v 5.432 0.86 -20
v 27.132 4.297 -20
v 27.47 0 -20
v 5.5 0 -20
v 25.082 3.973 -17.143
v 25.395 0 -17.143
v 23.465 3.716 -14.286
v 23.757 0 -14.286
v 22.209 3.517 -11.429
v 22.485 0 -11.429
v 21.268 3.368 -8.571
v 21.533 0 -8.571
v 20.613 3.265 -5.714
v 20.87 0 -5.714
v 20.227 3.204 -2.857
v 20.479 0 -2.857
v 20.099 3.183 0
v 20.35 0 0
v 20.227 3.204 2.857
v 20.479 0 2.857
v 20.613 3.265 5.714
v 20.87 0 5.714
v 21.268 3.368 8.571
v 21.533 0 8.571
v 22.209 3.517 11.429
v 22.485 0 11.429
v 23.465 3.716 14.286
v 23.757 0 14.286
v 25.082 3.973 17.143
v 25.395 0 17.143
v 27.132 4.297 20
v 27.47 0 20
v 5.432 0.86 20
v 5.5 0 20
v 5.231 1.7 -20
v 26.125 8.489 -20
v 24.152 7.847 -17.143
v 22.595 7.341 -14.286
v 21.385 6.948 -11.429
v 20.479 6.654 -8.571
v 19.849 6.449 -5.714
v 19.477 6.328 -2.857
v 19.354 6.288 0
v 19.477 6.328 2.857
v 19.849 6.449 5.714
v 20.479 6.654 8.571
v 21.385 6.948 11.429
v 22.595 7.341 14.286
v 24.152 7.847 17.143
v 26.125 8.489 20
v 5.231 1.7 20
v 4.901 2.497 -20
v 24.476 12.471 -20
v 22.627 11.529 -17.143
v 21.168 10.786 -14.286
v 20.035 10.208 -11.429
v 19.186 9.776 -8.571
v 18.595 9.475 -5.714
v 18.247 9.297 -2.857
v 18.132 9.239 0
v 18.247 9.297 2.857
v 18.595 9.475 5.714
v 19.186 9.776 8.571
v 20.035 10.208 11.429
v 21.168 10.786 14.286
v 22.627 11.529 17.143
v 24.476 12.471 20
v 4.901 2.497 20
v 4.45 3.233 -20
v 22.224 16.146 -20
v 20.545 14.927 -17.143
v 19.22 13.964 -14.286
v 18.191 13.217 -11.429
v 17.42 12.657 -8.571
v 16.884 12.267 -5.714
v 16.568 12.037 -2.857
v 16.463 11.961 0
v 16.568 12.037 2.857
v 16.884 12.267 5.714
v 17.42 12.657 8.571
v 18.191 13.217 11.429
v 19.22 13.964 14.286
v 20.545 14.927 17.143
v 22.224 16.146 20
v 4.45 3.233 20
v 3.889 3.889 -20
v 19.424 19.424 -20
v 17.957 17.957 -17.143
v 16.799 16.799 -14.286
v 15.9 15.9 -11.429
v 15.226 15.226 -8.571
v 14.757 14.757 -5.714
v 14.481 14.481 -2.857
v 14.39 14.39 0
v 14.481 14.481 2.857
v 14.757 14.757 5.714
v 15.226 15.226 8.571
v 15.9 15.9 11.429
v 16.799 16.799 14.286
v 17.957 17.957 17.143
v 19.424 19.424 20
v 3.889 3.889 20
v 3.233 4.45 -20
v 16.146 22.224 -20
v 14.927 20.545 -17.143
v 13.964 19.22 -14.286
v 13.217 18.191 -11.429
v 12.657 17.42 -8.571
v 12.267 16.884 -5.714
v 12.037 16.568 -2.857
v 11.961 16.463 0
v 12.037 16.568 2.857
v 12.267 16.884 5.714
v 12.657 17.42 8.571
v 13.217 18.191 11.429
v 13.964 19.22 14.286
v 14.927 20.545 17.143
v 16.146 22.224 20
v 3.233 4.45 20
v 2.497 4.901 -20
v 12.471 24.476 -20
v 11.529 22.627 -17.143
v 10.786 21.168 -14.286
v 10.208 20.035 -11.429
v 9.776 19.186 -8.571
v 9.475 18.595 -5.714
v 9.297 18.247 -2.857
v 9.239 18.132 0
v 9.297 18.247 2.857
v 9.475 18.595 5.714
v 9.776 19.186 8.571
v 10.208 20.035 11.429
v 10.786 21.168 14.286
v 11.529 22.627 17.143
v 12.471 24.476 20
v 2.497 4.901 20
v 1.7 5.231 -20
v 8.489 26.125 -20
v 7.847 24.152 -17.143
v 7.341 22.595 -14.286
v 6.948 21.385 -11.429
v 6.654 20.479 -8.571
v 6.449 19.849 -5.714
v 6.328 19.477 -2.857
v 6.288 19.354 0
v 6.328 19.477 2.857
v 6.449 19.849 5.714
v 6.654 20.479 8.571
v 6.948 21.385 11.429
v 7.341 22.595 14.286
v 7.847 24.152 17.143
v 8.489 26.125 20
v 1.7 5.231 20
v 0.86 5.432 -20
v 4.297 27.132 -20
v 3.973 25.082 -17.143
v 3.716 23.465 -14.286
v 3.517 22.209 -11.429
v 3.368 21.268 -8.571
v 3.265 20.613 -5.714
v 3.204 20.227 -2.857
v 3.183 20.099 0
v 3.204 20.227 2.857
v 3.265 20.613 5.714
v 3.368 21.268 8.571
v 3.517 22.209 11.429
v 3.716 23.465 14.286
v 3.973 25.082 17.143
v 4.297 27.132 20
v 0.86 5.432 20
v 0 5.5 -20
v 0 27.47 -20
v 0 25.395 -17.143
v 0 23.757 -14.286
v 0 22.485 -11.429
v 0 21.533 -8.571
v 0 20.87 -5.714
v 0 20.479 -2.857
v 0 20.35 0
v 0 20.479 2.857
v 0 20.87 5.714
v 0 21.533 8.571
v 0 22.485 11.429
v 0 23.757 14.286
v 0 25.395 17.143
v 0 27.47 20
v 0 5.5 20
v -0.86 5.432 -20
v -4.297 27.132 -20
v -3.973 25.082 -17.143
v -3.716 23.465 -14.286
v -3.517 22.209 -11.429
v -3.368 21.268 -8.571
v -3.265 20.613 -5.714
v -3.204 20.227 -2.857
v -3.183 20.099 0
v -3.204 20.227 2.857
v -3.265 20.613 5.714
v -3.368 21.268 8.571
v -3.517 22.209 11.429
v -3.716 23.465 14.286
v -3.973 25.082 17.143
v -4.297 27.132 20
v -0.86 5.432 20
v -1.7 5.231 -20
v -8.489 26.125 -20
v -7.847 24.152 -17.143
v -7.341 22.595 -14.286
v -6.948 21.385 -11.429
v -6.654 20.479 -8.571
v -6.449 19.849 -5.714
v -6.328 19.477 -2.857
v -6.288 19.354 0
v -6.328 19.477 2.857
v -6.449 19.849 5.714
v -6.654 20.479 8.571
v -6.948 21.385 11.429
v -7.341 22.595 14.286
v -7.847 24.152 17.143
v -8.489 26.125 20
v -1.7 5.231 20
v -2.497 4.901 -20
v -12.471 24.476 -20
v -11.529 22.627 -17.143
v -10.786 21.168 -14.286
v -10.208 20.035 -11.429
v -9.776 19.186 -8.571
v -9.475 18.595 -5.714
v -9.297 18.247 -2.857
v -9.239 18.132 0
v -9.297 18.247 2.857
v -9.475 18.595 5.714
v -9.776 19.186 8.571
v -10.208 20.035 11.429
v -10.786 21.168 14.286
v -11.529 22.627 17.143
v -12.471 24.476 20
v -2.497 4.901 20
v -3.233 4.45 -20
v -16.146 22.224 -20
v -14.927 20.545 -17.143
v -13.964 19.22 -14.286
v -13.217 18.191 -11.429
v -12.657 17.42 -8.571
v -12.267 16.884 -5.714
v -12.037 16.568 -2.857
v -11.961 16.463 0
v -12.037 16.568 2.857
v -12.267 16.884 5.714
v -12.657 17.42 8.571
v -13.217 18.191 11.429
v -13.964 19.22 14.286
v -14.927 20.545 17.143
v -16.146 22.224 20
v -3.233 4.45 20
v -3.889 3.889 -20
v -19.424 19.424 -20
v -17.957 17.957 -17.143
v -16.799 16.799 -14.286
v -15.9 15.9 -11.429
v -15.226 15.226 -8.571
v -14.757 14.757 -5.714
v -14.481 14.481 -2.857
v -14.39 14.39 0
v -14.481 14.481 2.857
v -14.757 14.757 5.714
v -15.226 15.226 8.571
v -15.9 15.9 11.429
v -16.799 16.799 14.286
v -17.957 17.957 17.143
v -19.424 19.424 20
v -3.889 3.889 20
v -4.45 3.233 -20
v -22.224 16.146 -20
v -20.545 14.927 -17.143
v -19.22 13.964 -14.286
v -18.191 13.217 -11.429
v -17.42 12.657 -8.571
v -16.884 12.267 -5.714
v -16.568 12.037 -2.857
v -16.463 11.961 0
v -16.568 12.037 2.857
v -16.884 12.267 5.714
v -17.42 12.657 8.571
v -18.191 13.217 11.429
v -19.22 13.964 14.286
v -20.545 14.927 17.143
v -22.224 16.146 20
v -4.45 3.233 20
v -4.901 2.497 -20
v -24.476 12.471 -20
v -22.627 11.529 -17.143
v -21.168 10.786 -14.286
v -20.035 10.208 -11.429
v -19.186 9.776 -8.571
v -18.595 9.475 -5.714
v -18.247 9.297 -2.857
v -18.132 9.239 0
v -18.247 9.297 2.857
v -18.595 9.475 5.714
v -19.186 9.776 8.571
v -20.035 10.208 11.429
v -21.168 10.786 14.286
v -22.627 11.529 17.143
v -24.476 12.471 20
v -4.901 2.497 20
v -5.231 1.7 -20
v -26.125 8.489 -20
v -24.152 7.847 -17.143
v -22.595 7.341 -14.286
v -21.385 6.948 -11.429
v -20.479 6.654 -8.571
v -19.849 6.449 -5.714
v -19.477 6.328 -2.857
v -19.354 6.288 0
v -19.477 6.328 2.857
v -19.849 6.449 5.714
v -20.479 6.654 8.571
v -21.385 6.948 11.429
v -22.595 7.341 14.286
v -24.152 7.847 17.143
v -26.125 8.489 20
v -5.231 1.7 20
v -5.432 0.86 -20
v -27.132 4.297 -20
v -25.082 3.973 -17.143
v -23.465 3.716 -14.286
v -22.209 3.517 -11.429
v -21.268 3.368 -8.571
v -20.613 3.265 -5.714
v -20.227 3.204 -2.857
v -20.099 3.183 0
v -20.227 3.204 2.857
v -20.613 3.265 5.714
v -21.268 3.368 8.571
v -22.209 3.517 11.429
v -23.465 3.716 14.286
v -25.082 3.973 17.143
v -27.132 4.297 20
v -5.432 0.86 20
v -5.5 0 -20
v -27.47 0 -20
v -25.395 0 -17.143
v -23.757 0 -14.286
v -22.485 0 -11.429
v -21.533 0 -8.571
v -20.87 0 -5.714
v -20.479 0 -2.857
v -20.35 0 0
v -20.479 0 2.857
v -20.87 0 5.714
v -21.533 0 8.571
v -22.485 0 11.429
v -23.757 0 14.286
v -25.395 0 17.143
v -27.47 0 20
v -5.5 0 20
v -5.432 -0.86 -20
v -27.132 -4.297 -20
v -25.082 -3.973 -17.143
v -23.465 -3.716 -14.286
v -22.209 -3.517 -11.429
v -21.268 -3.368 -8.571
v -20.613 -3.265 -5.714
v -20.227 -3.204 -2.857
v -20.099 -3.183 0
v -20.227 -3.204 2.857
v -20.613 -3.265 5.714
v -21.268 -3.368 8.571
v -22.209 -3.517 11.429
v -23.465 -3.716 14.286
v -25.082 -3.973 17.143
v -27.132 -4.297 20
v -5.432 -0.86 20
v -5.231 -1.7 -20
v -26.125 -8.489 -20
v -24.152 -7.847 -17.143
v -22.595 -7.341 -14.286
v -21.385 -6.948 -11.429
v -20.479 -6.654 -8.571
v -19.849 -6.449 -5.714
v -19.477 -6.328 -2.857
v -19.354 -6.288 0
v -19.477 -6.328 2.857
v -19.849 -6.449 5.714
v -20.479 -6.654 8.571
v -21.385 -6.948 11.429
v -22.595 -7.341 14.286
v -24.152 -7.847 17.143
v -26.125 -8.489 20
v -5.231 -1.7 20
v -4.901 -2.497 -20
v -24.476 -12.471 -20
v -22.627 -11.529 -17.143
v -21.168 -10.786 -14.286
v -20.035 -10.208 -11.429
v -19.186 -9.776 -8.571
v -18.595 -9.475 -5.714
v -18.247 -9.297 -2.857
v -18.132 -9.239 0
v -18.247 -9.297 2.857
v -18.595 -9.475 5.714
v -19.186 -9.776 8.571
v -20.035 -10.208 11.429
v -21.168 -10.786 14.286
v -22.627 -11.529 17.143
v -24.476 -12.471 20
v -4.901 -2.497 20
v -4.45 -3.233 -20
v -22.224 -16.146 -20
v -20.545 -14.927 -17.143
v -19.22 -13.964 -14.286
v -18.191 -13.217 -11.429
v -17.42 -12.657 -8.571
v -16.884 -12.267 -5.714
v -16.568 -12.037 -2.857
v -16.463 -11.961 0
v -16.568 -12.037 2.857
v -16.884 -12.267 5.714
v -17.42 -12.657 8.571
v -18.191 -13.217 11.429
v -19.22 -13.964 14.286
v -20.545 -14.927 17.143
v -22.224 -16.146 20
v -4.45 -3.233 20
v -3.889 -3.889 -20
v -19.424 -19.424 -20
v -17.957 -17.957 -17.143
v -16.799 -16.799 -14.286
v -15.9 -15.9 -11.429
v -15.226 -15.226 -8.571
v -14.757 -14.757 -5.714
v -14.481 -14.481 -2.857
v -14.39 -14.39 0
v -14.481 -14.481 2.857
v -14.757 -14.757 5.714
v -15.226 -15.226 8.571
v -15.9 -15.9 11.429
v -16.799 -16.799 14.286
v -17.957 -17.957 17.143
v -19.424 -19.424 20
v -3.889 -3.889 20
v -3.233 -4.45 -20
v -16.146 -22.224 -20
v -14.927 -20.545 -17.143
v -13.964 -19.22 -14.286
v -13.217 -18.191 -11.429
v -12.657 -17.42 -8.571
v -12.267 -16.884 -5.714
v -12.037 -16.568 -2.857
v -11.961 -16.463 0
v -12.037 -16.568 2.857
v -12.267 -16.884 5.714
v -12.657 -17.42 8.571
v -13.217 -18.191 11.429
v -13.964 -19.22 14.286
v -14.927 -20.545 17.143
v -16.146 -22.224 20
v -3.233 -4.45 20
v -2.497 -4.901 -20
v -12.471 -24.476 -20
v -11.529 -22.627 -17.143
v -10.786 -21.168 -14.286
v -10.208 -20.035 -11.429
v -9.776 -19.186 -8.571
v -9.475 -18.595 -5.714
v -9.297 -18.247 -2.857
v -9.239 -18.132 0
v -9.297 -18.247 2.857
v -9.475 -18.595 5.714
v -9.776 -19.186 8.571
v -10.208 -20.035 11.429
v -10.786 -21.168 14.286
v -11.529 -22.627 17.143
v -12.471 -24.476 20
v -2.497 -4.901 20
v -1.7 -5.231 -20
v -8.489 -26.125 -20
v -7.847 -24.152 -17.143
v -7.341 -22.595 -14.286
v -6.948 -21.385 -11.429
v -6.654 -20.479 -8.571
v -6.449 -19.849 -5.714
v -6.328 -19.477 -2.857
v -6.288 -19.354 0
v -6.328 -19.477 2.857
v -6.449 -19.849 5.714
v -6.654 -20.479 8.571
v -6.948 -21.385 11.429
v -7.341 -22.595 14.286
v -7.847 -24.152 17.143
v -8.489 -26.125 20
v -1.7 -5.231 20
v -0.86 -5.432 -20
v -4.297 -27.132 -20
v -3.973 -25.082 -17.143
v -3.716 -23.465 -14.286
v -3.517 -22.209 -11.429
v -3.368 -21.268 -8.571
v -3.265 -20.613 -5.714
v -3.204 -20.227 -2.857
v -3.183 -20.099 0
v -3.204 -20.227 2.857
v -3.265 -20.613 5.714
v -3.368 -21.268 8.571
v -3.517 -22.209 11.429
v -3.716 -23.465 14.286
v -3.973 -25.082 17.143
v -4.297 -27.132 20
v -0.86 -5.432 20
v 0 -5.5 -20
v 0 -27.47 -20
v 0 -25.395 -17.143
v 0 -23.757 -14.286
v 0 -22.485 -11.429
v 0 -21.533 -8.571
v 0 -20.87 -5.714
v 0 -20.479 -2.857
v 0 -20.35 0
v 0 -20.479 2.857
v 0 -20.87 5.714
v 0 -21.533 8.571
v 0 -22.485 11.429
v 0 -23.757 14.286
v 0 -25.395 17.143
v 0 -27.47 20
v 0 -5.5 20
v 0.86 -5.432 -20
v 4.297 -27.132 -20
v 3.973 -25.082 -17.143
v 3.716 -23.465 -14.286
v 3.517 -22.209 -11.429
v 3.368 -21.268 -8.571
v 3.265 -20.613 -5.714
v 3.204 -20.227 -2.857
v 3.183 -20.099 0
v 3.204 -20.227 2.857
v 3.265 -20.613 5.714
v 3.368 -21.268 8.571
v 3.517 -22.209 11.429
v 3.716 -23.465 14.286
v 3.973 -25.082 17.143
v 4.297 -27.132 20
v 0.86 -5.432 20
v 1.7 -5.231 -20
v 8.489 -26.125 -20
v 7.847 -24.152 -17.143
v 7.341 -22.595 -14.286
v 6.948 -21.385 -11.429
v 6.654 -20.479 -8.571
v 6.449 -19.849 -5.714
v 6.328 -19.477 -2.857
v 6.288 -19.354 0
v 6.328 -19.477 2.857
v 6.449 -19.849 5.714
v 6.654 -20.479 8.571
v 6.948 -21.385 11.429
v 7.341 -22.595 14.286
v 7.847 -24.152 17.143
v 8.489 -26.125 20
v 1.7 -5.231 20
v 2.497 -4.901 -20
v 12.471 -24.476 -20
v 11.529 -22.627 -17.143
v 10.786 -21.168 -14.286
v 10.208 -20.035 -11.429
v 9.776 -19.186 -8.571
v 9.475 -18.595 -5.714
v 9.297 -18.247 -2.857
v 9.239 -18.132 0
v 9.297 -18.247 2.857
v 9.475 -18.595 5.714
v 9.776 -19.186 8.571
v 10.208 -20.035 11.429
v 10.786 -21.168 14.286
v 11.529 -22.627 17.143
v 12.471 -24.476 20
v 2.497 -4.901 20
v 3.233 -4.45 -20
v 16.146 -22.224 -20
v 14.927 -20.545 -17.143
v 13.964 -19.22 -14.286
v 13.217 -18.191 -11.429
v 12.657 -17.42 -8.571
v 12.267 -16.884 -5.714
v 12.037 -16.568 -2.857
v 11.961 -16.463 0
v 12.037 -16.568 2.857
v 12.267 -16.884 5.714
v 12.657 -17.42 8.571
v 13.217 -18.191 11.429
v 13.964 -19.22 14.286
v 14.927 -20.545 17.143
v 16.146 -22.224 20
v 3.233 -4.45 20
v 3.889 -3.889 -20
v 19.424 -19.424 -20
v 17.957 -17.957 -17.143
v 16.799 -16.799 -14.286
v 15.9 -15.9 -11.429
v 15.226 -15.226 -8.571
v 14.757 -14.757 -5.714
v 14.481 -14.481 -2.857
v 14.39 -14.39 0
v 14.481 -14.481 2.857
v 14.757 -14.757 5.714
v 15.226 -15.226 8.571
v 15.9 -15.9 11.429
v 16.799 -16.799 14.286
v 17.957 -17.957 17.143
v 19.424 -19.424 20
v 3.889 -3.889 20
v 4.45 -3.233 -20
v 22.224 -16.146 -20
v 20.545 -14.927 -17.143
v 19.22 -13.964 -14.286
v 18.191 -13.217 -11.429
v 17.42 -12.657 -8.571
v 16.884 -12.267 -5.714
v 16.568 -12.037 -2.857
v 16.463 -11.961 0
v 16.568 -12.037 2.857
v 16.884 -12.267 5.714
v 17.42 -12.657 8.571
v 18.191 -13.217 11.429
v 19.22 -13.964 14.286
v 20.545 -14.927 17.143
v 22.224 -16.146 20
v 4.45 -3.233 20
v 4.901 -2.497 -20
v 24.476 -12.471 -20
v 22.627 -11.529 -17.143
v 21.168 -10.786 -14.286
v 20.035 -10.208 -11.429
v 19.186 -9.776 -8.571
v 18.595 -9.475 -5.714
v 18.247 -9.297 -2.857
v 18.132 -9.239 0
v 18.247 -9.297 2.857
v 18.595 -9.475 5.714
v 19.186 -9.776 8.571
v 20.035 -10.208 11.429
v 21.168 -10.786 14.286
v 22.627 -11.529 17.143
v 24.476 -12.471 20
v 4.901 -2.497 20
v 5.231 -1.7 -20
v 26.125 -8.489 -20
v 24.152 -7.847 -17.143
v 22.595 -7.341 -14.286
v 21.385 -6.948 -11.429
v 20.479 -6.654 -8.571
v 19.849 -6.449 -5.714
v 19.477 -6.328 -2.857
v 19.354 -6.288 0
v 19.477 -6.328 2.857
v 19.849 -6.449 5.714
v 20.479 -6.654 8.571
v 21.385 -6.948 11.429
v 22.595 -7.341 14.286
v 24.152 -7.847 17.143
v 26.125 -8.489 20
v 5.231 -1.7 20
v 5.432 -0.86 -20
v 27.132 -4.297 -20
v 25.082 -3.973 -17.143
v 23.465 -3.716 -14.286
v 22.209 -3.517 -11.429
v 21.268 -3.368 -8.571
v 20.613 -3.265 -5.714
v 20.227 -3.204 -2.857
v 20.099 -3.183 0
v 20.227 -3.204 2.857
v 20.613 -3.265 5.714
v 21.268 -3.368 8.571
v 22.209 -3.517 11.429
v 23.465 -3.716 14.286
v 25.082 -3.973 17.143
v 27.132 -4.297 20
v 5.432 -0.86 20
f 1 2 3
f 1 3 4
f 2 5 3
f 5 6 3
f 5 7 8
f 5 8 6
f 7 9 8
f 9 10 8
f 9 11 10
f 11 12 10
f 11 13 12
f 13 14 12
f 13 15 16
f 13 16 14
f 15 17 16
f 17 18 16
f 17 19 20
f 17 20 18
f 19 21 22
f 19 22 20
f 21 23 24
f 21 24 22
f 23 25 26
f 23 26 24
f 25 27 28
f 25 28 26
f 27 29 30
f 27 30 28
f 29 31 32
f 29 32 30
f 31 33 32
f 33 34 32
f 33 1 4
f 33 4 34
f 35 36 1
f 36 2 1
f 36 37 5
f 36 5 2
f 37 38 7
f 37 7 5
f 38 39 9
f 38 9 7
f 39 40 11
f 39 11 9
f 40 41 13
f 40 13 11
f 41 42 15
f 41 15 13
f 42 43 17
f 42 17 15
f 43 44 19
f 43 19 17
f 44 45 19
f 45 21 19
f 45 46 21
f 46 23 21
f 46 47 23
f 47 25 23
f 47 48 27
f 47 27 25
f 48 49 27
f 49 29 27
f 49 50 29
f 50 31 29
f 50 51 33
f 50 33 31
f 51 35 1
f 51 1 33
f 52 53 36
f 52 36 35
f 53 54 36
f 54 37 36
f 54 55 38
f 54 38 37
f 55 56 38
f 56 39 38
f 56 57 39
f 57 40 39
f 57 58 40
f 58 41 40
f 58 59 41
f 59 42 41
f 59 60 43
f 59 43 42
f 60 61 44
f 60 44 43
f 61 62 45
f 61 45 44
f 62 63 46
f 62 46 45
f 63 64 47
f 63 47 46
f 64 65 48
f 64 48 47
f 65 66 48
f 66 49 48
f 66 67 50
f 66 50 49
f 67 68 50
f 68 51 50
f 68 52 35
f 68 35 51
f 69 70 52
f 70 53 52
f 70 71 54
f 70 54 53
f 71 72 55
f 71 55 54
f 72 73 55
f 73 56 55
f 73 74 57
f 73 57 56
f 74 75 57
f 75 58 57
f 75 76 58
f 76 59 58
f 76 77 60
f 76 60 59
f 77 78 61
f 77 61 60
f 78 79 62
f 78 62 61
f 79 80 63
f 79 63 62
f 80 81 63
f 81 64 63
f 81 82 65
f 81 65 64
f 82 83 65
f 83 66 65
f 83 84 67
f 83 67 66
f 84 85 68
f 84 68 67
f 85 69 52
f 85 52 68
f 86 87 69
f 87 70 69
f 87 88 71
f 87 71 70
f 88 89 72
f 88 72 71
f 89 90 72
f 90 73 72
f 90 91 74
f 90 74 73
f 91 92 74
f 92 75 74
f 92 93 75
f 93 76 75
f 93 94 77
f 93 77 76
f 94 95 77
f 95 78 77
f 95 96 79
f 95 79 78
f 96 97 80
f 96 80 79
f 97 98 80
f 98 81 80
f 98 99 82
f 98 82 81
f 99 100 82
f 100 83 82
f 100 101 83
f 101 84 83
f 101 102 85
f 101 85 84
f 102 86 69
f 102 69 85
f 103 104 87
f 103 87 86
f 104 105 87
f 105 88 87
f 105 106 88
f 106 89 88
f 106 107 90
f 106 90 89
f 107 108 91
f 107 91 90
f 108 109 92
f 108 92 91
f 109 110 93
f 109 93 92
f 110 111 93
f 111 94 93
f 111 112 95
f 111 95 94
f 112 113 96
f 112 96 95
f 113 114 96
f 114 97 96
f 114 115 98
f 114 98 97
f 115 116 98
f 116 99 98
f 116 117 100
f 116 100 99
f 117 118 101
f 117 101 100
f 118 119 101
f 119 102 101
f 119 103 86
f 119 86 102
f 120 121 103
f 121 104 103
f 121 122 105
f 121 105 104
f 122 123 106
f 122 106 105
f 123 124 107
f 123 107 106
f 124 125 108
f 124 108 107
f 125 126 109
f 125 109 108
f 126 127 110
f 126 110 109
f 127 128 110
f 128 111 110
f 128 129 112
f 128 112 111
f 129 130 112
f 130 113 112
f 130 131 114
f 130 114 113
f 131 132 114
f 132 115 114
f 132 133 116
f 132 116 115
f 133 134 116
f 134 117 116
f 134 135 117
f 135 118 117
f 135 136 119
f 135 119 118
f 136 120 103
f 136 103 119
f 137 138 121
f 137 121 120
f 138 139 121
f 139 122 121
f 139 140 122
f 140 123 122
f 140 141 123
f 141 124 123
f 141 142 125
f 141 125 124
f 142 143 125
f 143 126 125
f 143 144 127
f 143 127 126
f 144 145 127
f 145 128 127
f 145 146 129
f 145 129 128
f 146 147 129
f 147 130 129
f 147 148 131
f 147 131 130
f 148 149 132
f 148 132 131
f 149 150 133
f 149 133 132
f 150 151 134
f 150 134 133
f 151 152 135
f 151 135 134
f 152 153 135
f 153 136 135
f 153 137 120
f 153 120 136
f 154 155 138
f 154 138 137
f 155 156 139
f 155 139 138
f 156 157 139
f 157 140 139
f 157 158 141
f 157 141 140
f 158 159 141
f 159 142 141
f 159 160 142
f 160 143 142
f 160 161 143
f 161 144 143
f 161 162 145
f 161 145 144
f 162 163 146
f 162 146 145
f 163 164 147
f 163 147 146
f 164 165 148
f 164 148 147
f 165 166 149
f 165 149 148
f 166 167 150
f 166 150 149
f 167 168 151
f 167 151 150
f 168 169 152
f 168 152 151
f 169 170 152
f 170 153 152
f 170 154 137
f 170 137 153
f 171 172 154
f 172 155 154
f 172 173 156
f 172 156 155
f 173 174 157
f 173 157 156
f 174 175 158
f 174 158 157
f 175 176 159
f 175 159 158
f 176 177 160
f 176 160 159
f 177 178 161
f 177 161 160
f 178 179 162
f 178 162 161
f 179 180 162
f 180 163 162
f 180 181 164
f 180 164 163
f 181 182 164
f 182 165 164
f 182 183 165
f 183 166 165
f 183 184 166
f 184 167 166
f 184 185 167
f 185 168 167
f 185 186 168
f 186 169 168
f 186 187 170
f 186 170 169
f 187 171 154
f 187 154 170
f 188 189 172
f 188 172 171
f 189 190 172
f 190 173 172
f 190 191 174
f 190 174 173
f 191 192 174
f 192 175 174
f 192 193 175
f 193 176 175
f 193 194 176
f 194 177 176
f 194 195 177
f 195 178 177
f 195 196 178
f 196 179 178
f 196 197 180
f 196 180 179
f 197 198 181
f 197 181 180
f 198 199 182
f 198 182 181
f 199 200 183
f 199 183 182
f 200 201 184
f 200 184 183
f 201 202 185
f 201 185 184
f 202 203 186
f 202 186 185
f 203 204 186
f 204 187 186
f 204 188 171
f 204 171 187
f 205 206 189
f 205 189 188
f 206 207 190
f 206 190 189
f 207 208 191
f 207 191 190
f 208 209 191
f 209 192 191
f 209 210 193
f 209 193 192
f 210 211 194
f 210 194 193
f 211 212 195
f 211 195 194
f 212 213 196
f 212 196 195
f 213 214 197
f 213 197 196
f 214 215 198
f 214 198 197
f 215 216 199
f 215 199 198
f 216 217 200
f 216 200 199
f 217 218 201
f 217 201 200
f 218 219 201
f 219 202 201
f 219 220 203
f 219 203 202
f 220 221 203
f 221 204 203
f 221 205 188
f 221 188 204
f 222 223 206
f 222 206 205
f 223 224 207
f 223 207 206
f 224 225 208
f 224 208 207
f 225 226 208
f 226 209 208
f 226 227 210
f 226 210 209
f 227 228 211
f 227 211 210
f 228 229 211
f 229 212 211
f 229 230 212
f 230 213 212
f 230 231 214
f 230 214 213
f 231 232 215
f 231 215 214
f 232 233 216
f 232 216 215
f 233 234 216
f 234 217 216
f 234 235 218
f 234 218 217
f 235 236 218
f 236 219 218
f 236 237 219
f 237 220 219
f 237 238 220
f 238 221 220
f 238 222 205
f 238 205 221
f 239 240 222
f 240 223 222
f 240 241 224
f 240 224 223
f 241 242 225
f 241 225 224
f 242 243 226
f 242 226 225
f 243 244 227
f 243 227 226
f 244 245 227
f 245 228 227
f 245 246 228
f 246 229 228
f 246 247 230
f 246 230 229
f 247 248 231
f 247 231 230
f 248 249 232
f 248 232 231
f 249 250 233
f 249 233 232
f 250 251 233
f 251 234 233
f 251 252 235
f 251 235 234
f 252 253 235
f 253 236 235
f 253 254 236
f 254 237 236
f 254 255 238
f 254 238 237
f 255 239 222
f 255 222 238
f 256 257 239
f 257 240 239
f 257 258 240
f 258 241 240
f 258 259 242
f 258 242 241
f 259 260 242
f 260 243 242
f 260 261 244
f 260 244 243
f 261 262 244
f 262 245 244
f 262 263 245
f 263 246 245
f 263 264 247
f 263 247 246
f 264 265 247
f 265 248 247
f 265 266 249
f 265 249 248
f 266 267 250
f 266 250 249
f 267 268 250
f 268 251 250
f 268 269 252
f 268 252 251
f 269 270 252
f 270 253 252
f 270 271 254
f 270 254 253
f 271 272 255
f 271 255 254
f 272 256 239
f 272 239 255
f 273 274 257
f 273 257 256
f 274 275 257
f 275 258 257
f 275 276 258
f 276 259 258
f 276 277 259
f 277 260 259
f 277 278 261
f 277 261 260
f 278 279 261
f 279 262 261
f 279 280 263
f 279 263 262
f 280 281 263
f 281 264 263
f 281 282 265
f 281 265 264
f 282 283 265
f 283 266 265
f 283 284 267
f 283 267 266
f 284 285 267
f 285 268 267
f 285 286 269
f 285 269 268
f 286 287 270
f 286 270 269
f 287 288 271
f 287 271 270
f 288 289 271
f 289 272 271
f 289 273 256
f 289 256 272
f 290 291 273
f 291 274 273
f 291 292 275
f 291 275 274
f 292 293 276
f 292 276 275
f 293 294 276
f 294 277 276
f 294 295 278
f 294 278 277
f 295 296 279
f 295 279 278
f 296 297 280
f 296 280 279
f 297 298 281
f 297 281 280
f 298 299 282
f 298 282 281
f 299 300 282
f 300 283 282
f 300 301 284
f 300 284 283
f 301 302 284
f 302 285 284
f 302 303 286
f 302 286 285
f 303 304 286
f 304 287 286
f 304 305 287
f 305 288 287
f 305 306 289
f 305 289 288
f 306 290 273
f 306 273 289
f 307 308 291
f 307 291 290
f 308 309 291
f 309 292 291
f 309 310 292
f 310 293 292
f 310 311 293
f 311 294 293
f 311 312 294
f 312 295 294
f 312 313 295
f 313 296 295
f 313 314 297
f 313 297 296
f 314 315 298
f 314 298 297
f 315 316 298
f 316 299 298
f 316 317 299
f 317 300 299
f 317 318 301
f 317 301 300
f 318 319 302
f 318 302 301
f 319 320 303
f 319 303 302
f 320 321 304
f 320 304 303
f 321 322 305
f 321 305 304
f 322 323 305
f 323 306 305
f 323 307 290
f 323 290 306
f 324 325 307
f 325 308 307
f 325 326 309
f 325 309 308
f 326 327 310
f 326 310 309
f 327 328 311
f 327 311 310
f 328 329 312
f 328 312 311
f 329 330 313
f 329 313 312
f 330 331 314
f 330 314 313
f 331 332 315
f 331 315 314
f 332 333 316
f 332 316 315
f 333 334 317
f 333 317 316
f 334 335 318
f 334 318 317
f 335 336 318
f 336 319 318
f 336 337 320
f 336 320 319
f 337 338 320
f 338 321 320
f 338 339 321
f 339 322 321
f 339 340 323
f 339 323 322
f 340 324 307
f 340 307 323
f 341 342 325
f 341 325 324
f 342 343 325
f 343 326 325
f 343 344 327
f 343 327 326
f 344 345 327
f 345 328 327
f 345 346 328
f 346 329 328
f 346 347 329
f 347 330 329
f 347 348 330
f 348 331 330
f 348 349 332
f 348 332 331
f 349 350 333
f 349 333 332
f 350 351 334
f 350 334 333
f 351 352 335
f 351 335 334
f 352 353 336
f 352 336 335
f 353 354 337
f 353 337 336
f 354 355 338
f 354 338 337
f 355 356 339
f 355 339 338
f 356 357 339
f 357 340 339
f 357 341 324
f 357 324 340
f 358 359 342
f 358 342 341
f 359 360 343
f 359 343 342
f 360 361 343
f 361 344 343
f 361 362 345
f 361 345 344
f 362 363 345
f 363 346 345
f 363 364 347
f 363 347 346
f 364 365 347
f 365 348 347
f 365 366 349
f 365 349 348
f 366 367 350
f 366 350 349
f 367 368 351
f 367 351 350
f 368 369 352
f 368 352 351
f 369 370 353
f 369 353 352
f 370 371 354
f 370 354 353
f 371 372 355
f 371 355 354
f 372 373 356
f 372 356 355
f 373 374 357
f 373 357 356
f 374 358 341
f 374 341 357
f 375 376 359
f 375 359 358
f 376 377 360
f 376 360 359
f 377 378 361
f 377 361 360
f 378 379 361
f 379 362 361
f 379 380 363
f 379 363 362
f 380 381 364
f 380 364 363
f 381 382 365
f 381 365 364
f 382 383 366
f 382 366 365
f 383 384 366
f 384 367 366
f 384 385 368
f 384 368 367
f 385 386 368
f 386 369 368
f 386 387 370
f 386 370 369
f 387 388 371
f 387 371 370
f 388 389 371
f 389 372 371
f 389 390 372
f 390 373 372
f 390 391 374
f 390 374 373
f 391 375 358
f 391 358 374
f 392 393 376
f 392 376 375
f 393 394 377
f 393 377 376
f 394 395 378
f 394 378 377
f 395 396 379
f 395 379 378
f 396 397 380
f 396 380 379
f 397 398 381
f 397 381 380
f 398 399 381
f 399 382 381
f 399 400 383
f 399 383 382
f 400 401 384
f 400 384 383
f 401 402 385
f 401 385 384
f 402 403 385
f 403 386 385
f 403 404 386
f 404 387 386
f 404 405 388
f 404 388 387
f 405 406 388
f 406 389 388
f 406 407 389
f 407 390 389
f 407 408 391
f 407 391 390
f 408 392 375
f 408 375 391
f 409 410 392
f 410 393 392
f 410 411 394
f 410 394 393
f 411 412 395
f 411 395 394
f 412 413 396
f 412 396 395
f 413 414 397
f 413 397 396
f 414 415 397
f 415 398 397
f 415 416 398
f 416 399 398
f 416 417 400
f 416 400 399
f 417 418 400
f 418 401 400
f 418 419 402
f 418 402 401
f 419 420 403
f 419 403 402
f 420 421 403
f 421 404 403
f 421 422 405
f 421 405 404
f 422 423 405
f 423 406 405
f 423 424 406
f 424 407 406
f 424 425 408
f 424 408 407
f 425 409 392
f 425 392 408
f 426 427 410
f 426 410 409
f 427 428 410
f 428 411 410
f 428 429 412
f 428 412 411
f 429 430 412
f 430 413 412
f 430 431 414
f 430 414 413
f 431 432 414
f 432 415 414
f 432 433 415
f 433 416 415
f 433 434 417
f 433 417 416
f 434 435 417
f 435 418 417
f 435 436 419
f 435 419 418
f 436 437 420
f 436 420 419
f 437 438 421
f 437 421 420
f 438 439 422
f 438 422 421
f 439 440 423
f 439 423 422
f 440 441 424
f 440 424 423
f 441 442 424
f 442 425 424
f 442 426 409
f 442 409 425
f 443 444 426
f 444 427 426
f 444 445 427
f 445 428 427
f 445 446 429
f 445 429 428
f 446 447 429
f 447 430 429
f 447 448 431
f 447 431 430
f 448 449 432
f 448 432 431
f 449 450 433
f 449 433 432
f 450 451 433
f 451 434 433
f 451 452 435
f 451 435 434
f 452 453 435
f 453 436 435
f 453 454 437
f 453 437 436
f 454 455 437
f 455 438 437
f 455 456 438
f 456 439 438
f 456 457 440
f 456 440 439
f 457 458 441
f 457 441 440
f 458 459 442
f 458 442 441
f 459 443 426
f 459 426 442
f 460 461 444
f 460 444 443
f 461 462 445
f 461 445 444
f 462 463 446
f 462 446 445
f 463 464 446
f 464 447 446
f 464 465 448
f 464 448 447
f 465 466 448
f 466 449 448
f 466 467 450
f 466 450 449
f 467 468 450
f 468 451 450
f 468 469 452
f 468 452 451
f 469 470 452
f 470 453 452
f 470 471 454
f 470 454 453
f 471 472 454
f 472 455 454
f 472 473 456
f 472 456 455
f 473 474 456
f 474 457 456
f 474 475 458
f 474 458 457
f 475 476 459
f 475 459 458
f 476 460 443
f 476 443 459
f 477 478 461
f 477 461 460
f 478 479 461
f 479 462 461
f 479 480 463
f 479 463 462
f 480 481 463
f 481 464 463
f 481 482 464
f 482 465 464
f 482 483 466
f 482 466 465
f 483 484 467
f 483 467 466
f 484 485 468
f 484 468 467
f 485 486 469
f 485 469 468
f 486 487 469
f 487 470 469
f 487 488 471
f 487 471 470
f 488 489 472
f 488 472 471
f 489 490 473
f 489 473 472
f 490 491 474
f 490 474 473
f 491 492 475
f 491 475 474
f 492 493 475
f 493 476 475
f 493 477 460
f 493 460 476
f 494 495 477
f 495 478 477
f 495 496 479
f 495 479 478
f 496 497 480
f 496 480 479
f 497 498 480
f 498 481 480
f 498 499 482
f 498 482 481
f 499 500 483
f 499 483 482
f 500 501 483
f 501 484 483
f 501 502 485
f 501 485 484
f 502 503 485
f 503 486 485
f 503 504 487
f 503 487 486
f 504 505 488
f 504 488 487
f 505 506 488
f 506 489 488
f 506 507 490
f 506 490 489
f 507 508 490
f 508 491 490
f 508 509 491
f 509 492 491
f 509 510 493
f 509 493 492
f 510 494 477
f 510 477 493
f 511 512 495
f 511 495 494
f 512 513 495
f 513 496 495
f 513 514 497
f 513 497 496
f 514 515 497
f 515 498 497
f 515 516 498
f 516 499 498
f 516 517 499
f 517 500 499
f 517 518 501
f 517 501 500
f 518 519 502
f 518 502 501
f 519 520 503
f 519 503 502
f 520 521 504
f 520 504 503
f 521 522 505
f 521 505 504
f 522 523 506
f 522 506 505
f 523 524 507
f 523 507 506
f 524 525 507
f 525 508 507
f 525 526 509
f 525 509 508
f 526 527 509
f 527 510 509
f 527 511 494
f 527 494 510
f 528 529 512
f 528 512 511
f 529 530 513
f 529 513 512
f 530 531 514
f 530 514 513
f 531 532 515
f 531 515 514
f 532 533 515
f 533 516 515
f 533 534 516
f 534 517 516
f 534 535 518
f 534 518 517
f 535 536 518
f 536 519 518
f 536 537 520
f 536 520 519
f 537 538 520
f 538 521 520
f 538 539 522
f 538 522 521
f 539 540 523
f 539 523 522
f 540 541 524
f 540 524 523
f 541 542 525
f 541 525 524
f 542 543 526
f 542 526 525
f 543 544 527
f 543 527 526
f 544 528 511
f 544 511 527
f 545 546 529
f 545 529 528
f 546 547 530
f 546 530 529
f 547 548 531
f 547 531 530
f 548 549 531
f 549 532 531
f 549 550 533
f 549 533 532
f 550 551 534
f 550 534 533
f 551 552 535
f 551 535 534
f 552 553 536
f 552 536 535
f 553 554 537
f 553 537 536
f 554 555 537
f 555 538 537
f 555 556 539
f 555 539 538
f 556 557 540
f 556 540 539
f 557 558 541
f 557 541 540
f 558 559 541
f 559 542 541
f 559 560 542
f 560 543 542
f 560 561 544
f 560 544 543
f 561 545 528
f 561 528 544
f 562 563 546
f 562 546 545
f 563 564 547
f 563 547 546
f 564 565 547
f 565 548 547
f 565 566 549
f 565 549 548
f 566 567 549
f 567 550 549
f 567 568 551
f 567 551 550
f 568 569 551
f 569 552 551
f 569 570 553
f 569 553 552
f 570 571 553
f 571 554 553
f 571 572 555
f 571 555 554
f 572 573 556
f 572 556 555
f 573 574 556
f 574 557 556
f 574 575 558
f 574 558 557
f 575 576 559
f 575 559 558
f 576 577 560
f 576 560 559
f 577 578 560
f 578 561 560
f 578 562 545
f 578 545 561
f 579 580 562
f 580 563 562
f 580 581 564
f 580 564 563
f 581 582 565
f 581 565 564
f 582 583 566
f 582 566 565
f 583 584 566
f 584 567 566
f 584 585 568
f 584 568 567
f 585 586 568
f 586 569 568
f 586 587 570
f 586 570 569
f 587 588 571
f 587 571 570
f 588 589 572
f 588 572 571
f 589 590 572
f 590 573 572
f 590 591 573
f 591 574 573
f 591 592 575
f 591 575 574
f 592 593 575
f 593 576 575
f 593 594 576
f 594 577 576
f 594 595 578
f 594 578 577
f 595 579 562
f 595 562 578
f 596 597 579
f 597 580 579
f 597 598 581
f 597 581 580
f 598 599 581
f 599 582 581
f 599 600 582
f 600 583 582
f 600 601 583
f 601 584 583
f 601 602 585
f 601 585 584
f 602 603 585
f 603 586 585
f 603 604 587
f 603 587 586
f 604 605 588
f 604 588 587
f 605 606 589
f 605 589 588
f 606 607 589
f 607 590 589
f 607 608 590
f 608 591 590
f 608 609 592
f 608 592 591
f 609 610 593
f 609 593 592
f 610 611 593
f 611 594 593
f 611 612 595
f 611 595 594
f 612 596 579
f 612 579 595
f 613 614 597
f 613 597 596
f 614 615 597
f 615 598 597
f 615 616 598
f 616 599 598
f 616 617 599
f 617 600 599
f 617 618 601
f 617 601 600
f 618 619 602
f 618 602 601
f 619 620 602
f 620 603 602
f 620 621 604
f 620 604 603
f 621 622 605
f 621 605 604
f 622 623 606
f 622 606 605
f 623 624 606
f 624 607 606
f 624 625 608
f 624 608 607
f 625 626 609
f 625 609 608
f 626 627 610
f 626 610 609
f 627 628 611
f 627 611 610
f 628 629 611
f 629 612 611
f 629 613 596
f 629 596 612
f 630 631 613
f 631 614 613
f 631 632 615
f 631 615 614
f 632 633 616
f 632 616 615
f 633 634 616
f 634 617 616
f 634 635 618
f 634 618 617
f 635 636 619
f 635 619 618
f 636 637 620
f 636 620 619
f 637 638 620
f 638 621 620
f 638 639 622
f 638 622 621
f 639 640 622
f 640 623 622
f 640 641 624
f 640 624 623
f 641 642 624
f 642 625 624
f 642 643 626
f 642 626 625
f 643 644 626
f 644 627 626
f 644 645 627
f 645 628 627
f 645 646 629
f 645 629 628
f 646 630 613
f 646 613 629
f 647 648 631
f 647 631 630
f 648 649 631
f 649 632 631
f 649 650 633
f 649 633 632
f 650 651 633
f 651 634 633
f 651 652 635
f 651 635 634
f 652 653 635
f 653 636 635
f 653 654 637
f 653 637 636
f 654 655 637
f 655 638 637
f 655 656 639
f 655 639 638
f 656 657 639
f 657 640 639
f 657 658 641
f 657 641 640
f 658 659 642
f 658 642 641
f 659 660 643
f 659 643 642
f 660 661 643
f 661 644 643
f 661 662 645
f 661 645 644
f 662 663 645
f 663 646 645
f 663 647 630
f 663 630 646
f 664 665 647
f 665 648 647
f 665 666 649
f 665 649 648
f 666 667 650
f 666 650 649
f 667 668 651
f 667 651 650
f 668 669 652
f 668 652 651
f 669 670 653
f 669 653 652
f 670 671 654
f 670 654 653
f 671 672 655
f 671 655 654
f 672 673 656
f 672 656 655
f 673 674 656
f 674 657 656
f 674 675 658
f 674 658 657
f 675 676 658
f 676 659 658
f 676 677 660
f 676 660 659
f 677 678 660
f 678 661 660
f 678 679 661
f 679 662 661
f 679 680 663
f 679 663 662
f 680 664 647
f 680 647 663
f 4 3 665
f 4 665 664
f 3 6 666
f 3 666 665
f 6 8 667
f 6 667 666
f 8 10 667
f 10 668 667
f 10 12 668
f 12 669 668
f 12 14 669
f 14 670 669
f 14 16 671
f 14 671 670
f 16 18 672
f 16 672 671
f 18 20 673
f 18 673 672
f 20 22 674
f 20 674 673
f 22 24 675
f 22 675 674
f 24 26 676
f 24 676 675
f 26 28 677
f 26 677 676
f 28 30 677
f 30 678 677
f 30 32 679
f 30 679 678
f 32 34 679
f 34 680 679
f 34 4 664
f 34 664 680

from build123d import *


with BuildPart() as part:
    # Revolve profile 1 → Revolve 1 (revolve)
    with BuildSketch(Plane(origin=(0, 0, 0), x_dir=(1, 0, 0), z_dir=(0, 1, 0)), mode=Mode.PRIVATE) as revolve_1_sk:
        with BuildLine():
            Line((5.5, -20), (5.5, 20))
            Line((5.5, 20), (27.469967387, 20))
            Line((27.469967387, 20), (25.394644355, 17.142857143))
            Line((25.394644355, 17.142857143), (23.757463511, 14.285714286))
            Line((23.757463511, 14.285714286), (22.485423007, 11.428571429))
            Line((22.485423007, 11.428571429), (21.532753452, 8.571428571))
            Line((21.532753452, 8.571428571), (20.87011984, 5.714285714))
            ThreePointArc((20.87011984, 5.714285714), (20.35, 0), (20.87011984, -5.714285714))
            Line((20.87011984, -5.714285714), (21.532753452, -8.571428571))
            Line((21.532753452, -8.571428571), (22.485423007, -11.428571429))
            Line((22.485423007, -11.428571429), (23.757463511, -14.285714286))
            Line((23.757463511, -14.285714286), (25.394644355, -17.142857143))
            Line((25.394644355, -17.142857143), (27.469967387, -20))
            Line((27.469967387, -20), (5.5, -20))
        make_face()
    revolve(revolve_1_sk.sketch.rotate(Axis((0, 0, -25), (0, 0, 1)), 180), axis=Axis((0, 0, -25), (0, 0, 1)))


solid = part.part
